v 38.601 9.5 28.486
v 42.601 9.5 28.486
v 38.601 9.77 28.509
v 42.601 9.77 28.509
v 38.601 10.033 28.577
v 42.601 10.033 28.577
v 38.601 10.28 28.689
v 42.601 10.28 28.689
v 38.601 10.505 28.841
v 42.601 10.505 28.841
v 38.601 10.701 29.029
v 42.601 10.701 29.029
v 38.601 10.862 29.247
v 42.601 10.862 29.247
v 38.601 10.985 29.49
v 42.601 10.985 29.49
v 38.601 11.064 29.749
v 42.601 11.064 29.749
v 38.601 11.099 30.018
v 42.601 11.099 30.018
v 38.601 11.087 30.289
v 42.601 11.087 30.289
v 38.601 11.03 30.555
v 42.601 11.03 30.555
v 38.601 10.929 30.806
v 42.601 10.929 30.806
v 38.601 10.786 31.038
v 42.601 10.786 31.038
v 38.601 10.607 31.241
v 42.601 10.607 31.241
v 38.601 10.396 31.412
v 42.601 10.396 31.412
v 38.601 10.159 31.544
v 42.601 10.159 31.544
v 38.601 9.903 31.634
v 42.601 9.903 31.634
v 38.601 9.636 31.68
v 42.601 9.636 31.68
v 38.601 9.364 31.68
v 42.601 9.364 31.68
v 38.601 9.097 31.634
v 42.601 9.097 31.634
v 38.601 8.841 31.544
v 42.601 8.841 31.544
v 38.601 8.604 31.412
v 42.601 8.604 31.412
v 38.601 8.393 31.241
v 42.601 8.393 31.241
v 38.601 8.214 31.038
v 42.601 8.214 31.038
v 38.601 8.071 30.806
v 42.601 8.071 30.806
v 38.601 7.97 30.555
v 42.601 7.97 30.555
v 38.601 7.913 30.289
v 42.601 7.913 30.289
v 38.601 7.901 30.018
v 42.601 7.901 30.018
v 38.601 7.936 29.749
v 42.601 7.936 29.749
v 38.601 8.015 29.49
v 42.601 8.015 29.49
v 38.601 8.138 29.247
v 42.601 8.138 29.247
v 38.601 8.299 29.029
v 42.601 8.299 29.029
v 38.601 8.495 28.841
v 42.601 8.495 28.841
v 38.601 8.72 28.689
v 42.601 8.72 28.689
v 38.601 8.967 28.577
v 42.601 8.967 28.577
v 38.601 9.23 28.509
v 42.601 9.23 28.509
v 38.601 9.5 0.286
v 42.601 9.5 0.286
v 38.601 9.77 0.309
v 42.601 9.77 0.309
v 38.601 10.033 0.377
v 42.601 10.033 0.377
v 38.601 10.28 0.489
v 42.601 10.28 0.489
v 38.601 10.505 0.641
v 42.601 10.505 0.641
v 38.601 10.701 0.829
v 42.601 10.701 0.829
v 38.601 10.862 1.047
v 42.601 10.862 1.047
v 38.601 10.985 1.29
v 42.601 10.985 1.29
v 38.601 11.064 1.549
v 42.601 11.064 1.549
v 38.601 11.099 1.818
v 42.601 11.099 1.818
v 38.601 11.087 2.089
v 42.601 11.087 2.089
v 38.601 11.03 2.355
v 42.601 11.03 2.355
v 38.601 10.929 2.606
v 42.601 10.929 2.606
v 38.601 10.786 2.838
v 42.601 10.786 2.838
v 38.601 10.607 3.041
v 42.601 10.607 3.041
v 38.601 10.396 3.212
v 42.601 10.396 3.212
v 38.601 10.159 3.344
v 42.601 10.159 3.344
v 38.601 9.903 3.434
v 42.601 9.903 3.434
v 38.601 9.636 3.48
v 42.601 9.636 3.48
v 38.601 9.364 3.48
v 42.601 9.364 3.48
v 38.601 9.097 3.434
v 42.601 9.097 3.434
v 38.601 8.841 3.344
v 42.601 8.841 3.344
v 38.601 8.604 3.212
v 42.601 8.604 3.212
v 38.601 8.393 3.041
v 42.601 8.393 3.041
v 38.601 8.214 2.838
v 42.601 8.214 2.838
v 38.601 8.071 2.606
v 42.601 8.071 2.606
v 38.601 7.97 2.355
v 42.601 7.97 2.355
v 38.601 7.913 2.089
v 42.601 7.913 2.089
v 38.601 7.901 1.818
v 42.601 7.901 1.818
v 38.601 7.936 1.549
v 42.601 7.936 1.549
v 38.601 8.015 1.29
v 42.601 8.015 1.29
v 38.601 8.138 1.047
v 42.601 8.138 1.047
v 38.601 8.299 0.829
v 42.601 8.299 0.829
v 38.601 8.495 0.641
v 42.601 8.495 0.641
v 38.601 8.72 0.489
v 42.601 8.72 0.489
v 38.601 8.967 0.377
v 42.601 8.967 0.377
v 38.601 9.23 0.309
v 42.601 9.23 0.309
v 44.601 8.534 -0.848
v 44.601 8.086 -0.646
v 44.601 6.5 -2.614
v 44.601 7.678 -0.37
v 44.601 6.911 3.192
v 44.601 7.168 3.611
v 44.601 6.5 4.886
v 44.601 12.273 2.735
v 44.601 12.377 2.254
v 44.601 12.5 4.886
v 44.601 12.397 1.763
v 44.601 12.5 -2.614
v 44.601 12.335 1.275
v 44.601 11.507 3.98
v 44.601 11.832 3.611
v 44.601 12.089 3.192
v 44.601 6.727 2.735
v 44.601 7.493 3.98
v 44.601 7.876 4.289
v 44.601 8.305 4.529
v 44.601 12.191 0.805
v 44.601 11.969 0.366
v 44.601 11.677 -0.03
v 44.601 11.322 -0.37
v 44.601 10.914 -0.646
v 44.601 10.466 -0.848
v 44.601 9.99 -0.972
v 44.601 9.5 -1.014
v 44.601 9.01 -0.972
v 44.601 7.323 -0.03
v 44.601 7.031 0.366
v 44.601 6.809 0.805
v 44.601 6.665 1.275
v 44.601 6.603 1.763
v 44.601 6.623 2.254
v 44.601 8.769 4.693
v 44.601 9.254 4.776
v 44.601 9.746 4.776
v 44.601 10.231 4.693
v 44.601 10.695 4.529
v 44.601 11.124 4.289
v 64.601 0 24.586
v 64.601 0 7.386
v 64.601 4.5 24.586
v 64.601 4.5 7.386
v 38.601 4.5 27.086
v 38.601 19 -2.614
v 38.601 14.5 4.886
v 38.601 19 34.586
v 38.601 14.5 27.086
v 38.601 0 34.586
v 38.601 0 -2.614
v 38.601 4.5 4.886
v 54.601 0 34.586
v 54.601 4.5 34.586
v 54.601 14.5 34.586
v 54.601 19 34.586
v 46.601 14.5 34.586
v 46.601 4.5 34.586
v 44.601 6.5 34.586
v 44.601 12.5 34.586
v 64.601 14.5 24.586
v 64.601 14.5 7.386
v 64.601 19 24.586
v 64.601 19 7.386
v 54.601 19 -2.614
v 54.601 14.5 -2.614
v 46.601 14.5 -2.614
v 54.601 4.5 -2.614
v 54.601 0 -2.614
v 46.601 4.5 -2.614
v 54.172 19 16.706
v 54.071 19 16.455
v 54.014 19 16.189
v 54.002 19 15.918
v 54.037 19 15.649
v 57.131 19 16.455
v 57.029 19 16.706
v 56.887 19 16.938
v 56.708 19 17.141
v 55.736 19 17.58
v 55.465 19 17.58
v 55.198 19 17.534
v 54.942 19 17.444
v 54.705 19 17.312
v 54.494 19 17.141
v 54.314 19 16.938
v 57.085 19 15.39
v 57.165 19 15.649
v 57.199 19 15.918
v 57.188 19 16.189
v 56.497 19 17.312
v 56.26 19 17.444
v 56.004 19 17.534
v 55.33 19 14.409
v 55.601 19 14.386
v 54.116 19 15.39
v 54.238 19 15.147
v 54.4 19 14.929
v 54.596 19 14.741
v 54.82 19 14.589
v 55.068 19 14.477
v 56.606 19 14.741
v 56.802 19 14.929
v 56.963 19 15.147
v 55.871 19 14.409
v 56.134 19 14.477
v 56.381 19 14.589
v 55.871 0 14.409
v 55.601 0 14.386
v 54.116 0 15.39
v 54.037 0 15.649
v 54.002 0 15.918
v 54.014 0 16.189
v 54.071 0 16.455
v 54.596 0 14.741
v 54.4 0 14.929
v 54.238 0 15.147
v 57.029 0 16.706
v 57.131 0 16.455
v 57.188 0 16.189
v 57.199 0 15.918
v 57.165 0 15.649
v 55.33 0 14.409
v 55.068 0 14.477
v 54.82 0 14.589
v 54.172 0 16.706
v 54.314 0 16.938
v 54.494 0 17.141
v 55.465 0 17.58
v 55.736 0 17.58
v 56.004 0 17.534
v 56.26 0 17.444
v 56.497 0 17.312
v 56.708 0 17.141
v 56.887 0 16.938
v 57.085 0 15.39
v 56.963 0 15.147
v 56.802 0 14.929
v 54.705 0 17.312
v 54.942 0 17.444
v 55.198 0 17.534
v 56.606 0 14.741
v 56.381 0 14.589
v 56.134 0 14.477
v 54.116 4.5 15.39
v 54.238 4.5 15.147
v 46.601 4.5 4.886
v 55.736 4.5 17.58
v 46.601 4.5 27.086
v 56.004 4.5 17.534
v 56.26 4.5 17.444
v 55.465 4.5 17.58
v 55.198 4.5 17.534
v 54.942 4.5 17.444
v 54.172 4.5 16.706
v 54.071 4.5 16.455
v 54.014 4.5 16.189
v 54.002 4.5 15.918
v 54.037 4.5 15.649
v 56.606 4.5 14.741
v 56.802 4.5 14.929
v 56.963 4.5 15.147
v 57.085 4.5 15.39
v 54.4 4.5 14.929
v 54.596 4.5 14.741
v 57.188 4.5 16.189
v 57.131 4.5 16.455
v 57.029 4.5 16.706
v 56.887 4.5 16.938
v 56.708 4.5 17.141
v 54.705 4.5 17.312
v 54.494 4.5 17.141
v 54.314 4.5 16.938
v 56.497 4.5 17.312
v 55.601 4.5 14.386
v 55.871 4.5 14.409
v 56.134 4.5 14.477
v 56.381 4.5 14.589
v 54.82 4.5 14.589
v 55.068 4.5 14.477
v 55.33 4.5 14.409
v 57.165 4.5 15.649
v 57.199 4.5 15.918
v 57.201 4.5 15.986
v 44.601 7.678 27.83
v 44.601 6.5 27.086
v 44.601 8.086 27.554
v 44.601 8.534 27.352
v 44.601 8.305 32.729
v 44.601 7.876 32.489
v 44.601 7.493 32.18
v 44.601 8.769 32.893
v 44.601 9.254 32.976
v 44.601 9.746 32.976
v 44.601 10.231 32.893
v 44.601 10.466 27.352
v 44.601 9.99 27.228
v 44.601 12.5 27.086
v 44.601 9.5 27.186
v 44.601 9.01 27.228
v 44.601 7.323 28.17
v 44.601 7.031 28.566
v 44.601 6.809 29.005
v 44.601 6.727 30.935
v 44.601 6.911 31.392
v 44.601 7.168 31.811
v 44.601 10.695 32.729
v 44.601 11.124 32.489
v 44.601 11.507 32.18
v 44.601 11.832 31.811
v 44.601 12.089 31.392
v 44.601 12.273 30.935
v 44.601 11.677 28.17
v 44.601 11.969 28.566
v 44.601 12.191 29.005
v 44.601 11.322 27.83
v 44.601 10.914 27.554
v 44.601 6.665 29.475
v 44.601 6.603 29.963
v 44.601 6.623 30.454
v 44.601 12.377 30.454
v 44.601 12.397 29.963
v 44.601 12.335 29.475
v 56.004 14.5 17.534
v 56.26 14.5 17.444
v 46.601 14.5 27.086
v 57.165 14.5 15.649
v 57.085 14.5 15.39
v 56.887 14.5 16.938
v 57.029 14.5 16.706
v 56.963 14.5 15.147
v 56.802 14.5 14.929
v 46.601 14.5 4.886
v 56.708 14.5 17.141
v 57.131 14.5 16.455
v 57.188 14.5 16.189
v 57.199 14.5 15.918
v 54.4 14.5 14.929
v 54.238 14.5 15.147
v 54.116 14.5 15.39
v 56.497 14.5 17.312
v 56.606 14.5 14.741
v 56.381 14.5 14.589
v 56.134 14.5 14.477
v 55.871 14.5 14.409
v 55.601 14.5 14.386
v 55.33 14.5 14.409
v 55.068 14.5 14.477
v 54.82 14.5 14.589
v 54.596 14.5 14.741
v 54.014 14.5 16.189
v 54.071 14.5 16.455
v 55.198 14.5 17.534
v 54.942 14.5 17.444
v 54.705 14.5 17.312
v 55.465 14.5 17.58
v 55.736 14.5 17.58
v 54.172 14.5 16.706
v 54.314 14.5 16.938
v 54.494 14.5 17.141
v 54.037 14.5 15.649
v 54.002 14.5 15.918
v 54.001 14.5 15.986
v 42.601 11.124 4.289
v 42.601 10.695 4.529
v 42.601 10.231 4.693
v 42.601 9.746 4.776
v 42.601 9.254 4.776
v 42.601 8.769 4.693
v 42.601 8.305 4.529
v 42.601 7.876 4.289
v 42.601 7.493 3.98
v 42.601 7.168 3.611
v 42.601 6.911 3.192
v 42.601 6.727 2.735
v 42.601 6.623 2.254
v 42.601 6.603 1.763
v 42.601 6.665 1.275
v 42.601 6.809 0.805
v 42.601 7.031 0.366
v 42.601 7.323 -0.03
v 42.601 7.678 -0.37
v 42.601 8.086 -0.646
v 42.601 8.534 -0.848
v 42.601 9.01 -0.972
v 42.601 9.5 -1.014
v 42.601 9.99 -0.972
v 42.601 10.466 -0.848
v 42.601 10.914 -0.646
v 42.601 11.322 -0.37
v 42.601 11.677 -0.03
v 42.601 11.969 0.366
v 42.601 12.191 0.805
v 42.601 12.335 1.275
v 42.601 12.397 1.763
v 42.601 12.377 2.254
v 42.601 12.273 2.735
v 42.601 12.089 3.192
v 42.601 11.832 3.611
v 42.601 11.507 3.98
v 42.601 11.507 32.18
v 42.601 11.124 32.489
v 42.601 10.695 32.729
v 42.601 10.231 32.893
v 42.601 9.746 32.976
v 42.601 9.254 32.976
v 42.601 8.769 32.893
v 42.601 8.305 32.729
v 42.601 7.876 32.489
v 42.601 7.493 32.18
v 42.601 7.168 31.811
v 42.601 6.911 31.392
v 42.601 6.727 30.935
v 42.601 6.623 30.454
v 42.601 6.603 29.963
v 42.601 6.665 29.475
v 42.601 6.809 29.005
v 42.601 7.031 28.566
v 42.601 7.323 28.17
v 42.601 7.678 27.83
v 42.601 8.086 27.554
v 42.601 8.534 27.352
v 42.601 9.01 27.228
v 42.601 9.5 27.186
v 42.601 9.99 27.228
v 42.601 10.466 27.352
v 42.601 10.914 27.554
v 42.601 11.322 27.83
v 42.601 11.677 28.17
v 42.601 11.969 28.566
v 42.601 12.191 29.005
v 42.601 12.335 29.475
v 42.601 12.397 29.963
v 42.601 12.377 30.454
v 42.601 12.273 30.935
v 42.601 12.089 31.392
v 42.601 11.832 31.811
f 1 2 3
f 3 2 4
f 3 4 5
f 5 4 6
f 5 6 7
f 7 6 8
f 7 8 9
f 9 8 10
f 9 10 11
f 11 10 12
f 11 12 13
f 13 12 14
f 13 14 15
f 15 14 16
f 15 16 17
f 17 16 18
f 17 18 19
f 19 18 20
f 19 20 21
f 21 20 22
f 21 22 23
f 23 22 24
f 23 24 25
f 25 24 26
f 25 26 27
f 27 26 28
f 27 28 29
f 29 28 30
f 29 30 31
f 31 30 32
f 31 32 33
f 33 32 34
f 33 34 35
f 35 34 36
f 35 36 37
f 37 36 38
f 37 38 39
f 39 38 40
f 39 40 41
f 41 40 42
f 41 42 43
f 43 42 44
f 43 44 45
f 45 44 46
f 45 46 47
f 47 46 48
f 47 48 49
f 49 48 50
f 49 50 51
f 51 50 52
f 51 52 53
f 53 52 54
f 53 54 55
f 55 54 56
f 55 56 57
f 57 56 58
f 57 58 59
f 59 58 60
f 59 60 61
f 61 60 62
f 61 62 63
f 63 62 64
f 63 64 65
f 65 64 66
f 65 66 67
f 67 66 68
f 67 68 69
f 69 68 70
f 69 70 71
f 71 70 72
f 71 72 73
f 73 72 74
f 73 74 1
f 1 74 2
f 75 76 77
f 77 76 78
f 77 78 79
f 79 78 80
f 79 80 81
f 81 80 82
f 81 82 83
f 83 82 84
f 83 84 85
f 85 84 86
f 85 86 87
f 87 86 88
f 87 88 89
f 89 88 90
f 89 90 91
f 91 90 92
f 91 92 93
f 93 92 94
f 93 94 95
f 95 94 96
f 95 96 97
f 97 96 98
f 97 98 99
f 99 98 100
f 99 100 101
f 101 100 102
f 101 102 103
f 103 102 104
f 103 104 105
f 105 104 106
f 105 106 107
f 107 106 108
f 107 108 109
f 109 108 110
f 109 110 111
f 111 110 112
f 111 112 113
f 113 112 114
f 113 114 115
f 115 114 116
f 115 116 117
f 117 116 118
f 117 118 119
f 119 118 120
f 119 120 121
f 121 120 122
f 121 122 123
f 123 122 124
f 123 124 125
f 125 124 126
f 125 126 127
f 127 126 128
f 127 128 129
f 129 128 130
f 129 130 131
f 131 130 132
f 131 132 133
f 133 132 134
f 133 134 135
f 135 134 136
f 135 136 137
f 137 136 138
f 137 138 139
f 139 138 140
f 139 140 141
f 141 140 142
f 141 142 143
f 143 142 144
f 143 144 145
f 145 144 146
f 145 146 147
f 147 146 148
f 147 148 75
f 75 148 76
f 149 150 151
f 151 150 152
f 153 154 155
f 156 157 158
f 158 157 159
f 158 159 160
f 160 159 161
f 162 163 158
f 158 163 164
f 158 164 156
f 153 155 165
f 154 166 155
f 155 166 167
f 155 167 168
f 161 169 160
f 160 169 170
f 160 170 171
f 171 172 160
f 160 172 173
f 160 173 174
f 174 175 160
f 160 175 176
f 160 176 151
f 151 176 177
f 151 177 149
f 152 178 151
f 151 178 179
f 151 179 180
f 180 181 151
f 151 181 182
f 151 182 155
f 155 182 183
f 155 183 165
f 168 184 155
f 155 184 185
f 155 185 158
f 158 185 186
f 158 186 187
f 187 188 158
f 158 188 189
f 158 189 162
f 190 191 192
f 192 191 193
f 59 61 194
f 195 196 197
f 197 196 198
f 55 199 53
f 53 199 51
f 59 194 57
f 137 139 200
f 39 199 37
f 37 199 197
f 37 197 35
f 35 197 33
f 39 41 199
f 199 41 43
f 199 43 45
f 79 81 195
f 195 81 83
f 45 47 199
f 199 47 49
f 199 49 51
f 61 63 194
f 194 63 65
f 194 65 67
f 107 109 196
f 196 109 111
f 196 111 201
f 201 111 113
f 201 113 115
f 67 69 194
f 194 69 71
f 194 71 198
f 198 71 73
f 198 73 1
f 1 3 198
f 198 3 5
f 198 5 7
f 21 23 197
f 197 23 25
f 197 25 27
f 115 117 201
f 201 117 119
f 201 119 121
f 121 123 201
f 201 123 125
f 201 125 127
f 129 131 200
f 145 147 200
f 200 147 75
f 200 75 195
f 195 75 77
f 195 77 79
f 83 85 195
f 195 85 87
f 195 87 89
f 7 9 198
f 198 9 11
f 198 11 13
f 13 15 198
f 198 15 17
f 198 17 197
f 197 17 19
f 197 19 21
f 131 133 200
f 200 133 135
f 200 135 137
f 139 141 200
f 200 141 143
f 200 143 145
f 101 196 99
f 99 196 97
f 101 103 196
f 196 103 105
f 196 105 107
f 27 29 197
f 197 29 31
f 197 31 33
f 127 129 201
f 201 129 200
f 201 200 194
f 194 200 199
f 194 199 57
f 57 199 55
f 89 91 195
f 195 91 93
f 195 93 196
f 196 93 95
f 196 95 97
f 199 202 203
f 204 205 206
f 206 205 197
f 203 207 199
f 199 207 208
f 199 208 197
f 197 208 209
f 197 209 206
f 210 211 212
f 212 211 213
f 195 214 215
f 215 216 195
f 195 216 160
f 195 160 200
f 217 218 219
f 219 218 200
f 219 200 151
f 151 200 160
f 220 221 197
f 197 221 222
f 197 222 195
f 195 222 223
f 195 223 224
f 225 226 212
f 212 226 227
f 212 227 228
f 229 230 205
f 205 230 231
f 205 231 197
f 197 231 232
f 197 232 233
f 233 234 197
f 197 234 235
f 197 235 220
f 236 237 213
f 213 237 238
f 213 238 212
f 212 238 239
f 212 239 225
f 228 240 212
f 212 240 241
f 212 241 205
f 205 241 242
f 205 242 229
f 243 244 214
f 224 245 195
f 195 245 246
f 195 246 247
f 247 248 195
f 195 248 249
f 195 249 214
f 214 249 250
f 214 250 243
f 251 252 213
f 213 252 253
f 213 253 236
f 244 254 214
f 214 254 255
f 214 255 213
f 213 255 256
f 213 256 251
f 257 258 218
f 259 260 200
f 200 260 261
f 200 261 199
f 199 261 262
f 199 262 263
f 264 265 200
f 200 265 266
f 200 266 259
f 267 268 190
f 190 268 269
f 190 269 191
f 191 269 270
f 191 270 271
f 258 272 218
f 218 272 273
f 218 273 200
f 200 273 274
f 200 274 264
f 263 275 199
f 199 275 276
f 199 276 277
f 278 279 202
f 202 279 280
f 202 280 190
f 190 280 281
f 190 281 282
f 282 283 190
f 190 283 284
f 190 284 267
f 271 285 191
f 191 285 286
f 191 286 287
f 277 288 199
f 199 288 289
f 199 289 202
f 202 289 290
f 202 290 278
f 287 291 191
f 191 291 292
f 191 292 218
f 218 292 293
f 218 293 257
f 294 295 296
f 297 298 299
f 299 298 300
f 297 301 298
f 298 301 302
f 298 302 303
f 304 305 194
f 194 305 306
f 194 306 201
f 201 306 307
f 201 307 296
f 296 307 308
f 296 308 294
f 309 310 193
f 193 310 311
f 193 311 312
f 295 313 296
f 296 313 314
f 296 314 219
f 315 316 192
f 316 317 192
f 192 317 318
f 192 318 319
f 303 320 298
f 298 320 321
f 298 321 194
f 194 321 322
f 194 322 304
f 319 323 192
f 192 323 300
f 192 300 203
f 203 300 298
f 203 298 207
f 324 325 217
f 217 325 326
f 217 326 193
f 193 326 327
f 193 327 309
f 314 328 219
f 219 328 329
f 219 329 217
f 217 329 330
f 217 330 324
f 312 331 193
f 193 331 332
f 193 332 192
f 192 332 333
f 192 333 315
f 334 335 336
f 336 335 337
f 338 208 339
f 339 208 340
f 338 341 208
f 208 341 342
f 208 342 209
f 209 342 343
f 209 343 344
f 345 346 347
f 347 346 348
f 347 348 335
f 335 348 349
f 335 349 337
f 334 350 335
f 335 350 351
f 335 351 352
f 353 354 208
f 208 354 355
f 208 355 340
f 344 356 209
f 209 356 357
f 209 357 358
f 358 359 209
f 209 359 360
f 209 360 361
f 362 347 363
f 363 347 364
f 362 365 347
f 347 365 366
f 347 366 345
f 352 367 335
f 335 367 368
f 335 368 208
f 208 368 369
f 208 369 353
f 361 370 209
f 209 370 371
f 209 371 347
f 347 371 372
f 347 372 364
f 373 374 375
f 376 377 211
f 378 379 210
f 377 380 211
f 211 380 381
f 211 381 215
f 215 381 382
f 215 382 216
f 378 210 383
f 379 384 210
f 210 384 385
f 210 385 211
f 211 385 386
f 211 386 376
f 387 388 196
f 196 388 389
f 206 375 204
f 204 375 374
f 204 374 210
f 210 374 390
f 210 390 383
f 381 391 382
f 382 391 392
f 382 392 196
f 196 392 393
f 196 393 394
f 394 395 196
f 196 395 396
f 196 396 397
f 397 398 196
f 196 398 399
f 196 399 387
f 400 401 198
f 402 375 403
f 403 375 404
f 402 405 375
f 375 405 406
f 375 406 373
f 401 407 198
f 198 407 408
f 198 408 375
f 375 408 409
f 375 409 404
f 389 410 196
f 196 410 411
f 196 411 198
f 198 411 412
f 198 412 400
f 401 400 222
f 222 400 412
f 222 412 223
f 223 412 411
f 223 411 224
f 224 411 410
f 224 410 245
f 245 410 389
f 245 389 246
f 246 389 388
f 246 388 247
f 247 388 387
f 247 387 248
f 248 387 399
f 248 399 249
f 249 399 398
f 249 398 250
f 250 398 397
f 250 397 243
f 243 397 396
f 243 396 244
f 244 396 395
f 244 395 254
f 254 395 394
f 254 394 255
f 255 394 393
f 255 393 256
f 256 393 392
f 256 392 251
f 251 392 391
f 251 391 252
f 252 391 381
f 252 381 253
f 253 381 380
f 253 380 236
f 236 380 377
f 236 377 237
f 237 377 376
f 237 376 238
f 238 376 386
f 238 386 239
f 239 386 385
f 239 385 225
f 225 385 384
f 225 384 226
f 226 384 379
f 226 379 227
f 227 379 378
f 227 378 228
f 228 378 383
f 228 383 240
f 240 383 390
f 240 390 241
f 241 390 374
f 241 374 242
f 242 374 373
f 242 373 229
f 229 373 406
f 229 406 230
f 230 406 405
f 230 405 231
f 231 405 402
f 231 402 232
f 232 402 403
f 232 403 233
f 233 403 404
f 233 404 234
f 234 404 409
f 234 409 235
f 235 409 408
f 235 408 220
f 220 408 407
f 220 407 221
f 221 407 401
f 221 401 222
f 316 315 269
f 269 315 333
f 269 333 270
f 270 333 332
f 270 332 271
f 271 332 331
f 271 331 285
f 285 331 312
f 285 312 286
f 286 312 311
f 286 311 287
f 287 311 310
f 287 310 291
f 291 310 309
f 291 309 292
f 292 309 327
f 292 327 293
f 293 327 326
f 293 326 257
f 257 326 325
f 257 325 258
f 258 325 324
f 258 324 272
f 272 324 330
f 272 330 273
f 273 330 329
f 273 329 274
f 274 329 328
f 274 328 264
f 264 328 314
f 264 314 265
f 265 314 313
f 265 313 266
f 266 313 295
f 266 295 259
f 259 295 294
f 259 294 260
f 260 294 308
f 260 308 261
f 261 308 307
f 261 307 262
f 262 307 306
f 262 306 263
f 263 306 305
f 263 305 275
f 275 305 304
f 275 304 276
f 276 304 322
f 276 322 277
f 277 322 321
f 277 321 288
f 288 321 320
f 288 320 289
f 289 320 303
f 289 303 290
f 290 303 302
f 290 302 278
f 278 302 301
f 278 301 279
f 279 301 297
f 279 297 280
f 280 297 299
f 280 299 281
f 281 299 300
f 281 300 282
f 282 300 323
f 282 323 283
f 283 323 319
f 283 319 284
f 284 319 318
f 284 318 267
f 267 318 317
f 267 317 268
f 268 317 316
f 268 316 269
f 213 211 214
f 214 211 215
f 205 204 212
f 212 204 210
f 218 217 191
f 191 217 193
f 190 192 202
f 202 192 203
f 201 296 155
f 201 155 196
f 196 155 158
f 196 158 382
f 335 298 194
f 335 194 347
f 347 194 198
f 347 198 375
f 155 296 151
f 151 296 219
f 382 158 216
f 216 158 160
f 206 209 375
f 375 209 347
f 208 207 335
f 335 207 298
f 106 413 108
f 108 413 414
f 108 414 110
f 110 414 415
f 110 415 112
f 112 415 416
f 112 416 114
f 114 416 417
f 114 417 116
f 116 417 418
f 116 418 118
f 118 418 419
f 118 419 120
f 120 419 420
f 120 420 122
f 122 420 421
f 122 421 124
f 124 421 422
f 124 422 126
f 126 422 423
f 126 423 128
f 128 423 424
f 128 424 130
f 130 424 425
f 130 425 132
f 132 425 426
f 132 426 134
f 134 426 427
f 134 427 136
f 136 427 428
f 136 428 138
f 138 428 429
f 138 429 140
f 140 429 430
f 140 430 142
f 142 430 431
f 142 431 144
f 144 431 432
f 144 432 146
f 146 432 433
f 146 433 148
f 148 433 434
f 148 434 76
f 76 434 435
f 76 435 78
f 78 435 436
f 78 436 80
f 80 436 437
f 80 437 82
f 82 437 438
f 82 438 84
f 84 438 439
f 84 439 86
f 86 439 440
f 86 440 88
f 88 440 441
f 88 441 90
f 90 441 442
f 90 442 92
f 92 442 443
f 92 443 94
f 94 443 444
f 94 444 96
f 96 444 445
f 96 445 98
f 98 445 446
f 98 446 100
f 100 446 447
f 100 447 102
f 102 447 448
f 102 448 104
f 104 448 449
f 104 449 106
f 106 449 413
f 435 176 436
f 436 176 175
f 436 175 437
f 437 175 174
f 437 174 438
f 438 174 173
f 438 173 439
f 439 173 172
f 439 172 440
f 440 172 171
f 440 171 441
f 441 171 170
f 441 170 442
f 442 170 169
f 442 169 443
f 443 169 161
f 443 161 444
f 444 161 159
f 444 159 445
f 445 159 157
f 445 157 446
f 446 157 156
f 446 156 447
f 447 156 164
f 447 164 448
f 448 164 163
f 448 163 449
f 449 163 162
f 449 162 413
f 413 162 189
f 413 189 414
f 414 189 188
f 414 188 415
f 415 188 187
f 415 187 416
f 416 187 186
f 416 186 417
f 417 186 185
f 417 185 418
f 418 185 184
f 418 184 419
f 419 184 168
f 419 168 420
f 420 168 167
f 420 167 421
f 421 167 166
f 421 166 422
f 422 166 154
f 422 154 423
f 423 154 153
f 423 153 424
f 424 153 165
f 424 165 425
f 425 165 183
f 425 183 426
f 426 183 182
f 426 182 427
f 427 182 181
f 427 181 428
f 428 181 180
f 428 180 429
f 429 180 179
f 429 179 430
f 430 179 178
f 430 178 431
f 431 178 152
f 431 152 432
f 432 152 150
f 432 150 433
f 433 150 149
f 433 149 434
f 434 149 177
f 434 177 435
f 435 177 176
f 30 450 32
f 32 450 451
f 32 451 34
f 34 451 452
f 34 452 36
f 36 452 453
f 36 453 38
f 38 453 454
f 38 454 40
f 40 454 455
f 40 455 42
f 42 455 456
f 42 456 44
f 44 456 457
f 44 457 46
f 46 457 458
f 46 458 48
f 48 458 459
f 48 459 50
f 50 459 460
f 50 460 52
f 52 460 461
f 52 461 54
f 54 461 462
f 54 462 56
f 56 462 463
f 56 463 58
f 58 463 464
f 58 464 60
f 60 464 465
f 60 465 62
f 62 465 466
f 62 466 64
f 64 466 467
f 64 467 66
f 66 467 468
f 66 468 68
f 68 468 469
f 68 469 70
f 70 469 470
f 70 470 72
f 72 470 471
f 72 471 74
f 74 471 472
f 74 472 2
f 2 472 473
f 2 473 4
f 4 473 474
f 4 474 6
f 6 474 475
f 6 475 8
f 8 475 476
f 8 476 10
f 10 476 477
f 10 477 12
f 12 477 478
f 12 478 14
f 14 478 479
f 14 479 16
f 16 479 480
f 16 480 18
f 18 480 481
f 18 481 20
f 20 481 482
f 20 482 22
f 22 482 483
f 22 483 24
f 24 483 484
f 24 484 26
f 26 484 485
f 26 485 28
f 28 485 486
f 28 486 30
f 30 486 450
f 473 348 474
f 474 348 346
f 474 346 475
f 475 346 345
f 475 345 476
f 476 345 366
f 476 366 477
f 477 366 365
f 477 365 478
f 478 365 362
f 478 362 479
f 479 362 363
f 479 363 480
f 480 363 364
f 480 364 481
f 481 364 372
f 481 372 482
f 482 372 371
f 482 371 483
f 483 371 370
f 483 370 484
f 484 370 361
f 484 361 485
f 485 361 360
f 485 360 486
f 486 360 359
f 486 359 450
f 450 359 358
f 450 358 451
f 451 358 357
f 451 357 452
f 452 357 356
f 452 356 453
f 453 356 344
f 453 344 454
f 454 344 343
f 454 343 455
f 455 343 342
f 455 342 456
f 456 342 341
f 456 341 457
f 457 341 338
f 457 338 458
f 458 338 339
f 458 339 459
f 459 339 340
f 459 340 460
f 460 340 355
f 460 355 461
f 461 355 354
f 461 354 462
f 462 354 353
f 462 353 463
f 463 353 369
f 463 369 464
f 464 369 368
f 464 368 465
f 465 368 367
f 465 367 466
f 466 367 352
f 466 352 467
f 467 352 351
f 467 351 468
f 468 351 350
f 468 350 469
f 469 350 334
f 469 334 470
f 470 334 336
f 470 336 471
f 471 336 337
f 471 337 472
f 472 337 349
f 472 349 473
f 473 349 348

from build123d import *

# Parameters (mm, degrees)
SKETCH1_W           = 26
SKETCH1_H           = 37.2
BOSS_EXTRUDE1_DEPTH = 19
SKETCH2_W           = 20
SKETCH2_H           = 10
CUT_EXTRUDE1_DEPTH  = 77.929109018
SKETCH3_R           = 1.6
CUT_EXTRUDE2_DEPTH  = 76.699707134
CUT_EXTRUDE3_DEPTH  = 76.699707134
SKETCH7_W           = 22.2
SKETCH7_H           = 10
CUT_EXTRUDE6_DEPTH  = 45.240228818
SKETCH8_R           = 1.6
CUT_EXTRUDE7_DEPTH  = 45.240228818
CHAMFER1_SIZE       = 2
SKETCH9_R           = 2.9
CUT_EXTRUDE12_DEPTH = 2


with BuildPart() as part:
    # Sketch1 → Boss-Extrude1 (new body)
    with BuildSketch(Plane(origin=(0, 0, 0), x_dir=(1, 0, 0), z_dir=(0, 1, 0))):
        with Locations((51.600679674, -15.986093244)):
            Rectangle(SKETCH1_W, SKETCH1_H)
    extrude(amount=BOSS_EXTRUDE1_DEPTH)

    # Sketch2 → Cut-Extrude1 (cut, through all)
    with BuildSketch(Plane.XY.offset(34.586093244)):
        with Locations((54.600679674, 9.5)):
            Rectangle(SKETCH2_W, SKETCH2_H)
    extrude(amount=-CUT_EXTRUDE1_DEPTH, mode=Mode.SUBTRACT)

    # Sketch3 → Cut-Extrude2 (cut, through all)
    with BuildSketch(Plane.XZ):
        with Locations(Location((55.600679674, 15.986093244, 0), (0, 0, 270))):
            Circle(SKETCH3_R)
    extrude(amount=-CUT_EXTRUDE2_DEPTH, mode=Mode.SUBTRACT)

    # Sketch4 → Cut-Extrude3 (cut, through all)
    with BuildSketch(Plane.XZ):
        Polygon((64.600679674, 24.586093244), (54.600679674, 34.586093244), (64.600679674, 34.586093244), align=None)
        Polygon((64.600679674, 7.386093244), (54.600679674, -2.613906756), (64.600679674, -2.613906756), align=None)
    extrude(amount=-CUT_EXTRUDE3_DEPTH, mode=Mode.SUBTRACT)

    # Sketch7 → Cut-Extrude6 (cut, through all)
    with BuildSketch(Plane(origin=(44.600679674, 0, 0), x_dir=(0, 0, -1), z_dir=(1, 0, 0))):
        with Locations((-15.986093244, 9.5)):
            Rectangle(SKETCH7_W, SKETCH7_H)
    extrude(amount=-CUT_EXTRUDE6_DEPTH, mode=Mode.SUBTRACT)

    # Sketch8 → Cut-Extrude7 (cut, through all)
    with BuildSketch(Plane(origin=(44.600679674, 0, 0), x_dir=(0, 0, -1), z_dir=(1, 0, 0))):
        with Locations((-30.086093244, 9.5)):
            Circle(SKETCH8_R)
        with Locations((-1.886093244, 9.5)):
            Circle(SKETCH8_R)
    extrude(amount=-CUT_EXTRUDE7_DEPTH, mode=Mode.SUBTRACT)

    # Chamfer1
    chamfer1_edges = [part.edges().sort_by_distance(p)[0] for p in [
        (44.600679674, 4.5, 1.136093244),
        (44.600679674, 14.5, 1.136093244),
        (44.600679674, 14.5, 30.836093244),
        (44.600679674, 4.5, 30.836093244),
    ]]
    chamfer(chamfer1_edges, length=CHAMFER1_SIZE)

    # Sketch9 → Cut-Extrude12 (cut)
    with BuildSketch(Plane(origin=(44.600679674, 0, 0), x_dir=(0, 0, -1), z_dir=(1, 0, 0))):
        with Locations((-30.086093244, 9.5)):
            Circle(SKETCH9_R)
        with Locations((-1.886093244, 9.5)):
            Circle(SKETCH9_R)
    extrude(amount=-CUT_EXTRUDE12_DEPTH, mode=Mode.SUBTRACT)


solid = part.part
